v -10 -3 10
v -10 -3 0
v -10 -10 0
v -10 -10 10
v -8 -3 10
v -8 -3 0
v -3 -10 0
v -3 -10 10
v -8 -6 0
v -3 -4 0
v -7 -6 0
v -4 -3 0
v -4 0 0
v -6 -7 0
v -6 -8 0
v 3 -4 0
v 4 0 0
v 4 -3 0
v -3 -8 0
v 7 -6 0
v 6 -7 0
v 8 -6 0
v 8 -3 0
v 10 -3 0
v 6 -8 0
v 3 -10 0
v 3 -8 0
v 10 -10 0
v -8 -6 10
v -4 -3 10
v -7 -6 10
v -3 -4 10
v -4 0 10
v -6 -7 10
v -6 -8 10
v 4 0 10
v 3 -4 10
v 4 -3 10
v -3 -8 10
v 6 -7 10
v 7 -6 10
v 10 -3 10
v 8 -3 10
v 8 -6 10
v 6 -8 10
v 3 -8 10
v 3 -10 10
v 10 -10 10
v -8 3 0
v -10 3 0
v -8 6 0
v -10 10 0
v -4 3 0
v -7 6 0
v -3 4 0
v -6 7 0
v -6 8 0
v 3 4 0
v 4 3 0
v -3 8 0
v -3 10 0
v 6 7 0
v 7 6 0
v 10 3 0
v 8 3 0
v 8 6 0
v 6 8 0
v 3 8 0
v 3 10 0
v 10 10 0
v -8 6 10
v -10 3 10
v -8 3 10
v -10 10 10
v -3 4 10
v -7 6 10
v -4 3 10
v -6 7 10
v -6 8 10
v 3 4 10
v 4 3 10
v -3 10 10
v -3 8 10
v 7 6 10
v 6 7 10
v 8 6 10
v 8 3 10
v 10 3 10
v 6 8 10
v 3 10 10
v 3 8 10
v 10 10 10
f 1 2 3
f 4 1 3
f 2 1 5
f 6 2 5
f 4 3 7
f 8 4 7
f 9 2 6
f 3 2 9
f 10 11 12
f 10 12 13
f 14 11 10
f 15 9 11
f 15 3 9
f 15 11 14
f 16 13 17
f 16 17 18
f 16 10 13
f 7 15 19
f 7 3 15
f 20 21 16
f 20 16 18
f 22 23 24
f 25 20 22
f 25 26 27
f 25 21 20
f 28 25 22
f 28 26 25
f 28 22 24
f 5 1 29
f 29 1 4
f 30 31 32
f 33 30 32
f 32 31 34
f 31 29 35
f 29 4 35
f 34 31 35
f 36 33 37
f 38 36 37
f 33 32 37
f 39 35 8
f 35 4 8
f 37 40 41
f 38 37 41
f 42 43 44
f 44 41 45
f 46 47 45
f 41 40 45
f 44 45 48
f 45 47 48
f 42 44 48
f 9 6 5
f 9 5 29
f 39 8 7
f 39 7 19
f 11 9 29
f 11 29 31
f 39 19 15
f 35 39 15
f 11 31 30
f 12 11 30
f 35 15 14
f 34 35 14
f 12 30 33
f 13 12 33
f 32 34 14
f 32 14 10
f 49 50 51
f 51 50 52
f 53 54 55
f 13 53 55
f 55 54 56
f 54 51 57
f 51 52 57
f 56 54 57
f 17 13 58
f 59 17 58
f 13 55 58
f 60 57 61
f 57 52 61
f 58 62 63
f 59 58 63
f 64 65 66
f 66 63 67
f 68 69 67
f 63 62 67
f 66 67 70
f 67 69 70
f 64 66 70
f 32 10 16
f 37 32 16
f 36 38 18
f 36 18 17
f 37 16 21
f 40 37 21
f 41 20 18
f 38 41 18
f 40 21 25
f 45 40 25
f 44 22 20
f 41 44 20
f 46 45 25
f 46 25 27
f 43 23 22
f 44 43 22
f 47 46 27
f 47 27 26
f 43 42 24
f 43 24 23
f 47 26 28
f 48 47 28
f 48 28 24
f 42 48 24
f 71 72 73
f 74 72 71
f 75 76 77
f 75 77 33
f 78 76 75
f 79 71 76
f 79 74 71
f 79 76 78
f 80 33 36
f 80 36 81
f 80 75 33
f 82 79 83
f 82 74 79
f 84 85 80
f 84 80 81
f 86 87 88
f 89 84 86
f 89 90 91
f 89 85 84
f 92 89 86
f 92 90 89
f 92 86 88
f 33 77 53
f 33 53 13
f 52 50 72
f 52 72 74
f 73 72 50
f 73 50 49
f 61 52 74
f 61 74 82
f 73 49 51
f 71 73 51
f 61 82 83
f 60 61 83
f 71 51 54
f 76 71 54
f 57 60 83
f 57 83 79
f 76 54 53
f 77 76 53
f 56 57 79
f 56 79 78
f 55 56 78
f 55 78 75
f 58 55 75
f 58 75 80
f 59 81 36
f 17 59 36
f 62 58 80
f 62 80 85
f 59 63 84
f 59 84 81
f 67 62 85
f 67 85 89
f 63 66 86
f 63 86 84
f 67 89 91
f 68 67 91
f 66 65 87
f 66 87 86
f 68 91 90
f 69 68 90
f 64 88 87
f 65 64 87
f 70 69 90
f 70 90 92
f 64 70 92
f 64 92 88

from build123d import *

# Parameters (mm, degrees)
PAD_DEPTH    = 10
SKETCH001_R  = 2
POCKET_DEPTH = 4.001


with BuildPart() as change_me_for_height:
    # Sketch → Pad (new body)
    with BuildSketch(Plane.XY):
        Polygon((-10, 3), (-10, 10), (-3, 10), (-3, 8), (-6, 8), (-6, 7), (-3, 4), (3, 4), (6, 7), (6, 8), (3, 8), (3, 10), (10, 10), (10, 3), (8, 3), (8, 6), (7, 6), (4, 3), (4, 0), (-4, 0), (-4, 3), (-7, 6), (-8, 6), (-8, 3), align=None)
    pad = extrude(amount=PAD_DEPTH)


with BuildPart() as mirrored:
    # Mirrored base: copy of Change_me_for_height
    add(change_me_for_height.part)

    # Mirrored: Pad across Sketch H_Axis
    add(pad.mirror(Plane.ZX))


with BuildPart() as pocket:
    # Fusion base: copy of Change_me_for_height
    add(change_me_for_height.part)

    # Fusion: union Mirrored
    add(mirrored.part)

    # Sketch001 → Pocket (cut, through all)
    with BuildSketch(Plane.XZ.offset(-6)):
        Circle(SKETCH001_R)
    extrude(amount=-POCKET_DEPTH, mode=Mode.SUBTRACT)


solid = pocket.part
